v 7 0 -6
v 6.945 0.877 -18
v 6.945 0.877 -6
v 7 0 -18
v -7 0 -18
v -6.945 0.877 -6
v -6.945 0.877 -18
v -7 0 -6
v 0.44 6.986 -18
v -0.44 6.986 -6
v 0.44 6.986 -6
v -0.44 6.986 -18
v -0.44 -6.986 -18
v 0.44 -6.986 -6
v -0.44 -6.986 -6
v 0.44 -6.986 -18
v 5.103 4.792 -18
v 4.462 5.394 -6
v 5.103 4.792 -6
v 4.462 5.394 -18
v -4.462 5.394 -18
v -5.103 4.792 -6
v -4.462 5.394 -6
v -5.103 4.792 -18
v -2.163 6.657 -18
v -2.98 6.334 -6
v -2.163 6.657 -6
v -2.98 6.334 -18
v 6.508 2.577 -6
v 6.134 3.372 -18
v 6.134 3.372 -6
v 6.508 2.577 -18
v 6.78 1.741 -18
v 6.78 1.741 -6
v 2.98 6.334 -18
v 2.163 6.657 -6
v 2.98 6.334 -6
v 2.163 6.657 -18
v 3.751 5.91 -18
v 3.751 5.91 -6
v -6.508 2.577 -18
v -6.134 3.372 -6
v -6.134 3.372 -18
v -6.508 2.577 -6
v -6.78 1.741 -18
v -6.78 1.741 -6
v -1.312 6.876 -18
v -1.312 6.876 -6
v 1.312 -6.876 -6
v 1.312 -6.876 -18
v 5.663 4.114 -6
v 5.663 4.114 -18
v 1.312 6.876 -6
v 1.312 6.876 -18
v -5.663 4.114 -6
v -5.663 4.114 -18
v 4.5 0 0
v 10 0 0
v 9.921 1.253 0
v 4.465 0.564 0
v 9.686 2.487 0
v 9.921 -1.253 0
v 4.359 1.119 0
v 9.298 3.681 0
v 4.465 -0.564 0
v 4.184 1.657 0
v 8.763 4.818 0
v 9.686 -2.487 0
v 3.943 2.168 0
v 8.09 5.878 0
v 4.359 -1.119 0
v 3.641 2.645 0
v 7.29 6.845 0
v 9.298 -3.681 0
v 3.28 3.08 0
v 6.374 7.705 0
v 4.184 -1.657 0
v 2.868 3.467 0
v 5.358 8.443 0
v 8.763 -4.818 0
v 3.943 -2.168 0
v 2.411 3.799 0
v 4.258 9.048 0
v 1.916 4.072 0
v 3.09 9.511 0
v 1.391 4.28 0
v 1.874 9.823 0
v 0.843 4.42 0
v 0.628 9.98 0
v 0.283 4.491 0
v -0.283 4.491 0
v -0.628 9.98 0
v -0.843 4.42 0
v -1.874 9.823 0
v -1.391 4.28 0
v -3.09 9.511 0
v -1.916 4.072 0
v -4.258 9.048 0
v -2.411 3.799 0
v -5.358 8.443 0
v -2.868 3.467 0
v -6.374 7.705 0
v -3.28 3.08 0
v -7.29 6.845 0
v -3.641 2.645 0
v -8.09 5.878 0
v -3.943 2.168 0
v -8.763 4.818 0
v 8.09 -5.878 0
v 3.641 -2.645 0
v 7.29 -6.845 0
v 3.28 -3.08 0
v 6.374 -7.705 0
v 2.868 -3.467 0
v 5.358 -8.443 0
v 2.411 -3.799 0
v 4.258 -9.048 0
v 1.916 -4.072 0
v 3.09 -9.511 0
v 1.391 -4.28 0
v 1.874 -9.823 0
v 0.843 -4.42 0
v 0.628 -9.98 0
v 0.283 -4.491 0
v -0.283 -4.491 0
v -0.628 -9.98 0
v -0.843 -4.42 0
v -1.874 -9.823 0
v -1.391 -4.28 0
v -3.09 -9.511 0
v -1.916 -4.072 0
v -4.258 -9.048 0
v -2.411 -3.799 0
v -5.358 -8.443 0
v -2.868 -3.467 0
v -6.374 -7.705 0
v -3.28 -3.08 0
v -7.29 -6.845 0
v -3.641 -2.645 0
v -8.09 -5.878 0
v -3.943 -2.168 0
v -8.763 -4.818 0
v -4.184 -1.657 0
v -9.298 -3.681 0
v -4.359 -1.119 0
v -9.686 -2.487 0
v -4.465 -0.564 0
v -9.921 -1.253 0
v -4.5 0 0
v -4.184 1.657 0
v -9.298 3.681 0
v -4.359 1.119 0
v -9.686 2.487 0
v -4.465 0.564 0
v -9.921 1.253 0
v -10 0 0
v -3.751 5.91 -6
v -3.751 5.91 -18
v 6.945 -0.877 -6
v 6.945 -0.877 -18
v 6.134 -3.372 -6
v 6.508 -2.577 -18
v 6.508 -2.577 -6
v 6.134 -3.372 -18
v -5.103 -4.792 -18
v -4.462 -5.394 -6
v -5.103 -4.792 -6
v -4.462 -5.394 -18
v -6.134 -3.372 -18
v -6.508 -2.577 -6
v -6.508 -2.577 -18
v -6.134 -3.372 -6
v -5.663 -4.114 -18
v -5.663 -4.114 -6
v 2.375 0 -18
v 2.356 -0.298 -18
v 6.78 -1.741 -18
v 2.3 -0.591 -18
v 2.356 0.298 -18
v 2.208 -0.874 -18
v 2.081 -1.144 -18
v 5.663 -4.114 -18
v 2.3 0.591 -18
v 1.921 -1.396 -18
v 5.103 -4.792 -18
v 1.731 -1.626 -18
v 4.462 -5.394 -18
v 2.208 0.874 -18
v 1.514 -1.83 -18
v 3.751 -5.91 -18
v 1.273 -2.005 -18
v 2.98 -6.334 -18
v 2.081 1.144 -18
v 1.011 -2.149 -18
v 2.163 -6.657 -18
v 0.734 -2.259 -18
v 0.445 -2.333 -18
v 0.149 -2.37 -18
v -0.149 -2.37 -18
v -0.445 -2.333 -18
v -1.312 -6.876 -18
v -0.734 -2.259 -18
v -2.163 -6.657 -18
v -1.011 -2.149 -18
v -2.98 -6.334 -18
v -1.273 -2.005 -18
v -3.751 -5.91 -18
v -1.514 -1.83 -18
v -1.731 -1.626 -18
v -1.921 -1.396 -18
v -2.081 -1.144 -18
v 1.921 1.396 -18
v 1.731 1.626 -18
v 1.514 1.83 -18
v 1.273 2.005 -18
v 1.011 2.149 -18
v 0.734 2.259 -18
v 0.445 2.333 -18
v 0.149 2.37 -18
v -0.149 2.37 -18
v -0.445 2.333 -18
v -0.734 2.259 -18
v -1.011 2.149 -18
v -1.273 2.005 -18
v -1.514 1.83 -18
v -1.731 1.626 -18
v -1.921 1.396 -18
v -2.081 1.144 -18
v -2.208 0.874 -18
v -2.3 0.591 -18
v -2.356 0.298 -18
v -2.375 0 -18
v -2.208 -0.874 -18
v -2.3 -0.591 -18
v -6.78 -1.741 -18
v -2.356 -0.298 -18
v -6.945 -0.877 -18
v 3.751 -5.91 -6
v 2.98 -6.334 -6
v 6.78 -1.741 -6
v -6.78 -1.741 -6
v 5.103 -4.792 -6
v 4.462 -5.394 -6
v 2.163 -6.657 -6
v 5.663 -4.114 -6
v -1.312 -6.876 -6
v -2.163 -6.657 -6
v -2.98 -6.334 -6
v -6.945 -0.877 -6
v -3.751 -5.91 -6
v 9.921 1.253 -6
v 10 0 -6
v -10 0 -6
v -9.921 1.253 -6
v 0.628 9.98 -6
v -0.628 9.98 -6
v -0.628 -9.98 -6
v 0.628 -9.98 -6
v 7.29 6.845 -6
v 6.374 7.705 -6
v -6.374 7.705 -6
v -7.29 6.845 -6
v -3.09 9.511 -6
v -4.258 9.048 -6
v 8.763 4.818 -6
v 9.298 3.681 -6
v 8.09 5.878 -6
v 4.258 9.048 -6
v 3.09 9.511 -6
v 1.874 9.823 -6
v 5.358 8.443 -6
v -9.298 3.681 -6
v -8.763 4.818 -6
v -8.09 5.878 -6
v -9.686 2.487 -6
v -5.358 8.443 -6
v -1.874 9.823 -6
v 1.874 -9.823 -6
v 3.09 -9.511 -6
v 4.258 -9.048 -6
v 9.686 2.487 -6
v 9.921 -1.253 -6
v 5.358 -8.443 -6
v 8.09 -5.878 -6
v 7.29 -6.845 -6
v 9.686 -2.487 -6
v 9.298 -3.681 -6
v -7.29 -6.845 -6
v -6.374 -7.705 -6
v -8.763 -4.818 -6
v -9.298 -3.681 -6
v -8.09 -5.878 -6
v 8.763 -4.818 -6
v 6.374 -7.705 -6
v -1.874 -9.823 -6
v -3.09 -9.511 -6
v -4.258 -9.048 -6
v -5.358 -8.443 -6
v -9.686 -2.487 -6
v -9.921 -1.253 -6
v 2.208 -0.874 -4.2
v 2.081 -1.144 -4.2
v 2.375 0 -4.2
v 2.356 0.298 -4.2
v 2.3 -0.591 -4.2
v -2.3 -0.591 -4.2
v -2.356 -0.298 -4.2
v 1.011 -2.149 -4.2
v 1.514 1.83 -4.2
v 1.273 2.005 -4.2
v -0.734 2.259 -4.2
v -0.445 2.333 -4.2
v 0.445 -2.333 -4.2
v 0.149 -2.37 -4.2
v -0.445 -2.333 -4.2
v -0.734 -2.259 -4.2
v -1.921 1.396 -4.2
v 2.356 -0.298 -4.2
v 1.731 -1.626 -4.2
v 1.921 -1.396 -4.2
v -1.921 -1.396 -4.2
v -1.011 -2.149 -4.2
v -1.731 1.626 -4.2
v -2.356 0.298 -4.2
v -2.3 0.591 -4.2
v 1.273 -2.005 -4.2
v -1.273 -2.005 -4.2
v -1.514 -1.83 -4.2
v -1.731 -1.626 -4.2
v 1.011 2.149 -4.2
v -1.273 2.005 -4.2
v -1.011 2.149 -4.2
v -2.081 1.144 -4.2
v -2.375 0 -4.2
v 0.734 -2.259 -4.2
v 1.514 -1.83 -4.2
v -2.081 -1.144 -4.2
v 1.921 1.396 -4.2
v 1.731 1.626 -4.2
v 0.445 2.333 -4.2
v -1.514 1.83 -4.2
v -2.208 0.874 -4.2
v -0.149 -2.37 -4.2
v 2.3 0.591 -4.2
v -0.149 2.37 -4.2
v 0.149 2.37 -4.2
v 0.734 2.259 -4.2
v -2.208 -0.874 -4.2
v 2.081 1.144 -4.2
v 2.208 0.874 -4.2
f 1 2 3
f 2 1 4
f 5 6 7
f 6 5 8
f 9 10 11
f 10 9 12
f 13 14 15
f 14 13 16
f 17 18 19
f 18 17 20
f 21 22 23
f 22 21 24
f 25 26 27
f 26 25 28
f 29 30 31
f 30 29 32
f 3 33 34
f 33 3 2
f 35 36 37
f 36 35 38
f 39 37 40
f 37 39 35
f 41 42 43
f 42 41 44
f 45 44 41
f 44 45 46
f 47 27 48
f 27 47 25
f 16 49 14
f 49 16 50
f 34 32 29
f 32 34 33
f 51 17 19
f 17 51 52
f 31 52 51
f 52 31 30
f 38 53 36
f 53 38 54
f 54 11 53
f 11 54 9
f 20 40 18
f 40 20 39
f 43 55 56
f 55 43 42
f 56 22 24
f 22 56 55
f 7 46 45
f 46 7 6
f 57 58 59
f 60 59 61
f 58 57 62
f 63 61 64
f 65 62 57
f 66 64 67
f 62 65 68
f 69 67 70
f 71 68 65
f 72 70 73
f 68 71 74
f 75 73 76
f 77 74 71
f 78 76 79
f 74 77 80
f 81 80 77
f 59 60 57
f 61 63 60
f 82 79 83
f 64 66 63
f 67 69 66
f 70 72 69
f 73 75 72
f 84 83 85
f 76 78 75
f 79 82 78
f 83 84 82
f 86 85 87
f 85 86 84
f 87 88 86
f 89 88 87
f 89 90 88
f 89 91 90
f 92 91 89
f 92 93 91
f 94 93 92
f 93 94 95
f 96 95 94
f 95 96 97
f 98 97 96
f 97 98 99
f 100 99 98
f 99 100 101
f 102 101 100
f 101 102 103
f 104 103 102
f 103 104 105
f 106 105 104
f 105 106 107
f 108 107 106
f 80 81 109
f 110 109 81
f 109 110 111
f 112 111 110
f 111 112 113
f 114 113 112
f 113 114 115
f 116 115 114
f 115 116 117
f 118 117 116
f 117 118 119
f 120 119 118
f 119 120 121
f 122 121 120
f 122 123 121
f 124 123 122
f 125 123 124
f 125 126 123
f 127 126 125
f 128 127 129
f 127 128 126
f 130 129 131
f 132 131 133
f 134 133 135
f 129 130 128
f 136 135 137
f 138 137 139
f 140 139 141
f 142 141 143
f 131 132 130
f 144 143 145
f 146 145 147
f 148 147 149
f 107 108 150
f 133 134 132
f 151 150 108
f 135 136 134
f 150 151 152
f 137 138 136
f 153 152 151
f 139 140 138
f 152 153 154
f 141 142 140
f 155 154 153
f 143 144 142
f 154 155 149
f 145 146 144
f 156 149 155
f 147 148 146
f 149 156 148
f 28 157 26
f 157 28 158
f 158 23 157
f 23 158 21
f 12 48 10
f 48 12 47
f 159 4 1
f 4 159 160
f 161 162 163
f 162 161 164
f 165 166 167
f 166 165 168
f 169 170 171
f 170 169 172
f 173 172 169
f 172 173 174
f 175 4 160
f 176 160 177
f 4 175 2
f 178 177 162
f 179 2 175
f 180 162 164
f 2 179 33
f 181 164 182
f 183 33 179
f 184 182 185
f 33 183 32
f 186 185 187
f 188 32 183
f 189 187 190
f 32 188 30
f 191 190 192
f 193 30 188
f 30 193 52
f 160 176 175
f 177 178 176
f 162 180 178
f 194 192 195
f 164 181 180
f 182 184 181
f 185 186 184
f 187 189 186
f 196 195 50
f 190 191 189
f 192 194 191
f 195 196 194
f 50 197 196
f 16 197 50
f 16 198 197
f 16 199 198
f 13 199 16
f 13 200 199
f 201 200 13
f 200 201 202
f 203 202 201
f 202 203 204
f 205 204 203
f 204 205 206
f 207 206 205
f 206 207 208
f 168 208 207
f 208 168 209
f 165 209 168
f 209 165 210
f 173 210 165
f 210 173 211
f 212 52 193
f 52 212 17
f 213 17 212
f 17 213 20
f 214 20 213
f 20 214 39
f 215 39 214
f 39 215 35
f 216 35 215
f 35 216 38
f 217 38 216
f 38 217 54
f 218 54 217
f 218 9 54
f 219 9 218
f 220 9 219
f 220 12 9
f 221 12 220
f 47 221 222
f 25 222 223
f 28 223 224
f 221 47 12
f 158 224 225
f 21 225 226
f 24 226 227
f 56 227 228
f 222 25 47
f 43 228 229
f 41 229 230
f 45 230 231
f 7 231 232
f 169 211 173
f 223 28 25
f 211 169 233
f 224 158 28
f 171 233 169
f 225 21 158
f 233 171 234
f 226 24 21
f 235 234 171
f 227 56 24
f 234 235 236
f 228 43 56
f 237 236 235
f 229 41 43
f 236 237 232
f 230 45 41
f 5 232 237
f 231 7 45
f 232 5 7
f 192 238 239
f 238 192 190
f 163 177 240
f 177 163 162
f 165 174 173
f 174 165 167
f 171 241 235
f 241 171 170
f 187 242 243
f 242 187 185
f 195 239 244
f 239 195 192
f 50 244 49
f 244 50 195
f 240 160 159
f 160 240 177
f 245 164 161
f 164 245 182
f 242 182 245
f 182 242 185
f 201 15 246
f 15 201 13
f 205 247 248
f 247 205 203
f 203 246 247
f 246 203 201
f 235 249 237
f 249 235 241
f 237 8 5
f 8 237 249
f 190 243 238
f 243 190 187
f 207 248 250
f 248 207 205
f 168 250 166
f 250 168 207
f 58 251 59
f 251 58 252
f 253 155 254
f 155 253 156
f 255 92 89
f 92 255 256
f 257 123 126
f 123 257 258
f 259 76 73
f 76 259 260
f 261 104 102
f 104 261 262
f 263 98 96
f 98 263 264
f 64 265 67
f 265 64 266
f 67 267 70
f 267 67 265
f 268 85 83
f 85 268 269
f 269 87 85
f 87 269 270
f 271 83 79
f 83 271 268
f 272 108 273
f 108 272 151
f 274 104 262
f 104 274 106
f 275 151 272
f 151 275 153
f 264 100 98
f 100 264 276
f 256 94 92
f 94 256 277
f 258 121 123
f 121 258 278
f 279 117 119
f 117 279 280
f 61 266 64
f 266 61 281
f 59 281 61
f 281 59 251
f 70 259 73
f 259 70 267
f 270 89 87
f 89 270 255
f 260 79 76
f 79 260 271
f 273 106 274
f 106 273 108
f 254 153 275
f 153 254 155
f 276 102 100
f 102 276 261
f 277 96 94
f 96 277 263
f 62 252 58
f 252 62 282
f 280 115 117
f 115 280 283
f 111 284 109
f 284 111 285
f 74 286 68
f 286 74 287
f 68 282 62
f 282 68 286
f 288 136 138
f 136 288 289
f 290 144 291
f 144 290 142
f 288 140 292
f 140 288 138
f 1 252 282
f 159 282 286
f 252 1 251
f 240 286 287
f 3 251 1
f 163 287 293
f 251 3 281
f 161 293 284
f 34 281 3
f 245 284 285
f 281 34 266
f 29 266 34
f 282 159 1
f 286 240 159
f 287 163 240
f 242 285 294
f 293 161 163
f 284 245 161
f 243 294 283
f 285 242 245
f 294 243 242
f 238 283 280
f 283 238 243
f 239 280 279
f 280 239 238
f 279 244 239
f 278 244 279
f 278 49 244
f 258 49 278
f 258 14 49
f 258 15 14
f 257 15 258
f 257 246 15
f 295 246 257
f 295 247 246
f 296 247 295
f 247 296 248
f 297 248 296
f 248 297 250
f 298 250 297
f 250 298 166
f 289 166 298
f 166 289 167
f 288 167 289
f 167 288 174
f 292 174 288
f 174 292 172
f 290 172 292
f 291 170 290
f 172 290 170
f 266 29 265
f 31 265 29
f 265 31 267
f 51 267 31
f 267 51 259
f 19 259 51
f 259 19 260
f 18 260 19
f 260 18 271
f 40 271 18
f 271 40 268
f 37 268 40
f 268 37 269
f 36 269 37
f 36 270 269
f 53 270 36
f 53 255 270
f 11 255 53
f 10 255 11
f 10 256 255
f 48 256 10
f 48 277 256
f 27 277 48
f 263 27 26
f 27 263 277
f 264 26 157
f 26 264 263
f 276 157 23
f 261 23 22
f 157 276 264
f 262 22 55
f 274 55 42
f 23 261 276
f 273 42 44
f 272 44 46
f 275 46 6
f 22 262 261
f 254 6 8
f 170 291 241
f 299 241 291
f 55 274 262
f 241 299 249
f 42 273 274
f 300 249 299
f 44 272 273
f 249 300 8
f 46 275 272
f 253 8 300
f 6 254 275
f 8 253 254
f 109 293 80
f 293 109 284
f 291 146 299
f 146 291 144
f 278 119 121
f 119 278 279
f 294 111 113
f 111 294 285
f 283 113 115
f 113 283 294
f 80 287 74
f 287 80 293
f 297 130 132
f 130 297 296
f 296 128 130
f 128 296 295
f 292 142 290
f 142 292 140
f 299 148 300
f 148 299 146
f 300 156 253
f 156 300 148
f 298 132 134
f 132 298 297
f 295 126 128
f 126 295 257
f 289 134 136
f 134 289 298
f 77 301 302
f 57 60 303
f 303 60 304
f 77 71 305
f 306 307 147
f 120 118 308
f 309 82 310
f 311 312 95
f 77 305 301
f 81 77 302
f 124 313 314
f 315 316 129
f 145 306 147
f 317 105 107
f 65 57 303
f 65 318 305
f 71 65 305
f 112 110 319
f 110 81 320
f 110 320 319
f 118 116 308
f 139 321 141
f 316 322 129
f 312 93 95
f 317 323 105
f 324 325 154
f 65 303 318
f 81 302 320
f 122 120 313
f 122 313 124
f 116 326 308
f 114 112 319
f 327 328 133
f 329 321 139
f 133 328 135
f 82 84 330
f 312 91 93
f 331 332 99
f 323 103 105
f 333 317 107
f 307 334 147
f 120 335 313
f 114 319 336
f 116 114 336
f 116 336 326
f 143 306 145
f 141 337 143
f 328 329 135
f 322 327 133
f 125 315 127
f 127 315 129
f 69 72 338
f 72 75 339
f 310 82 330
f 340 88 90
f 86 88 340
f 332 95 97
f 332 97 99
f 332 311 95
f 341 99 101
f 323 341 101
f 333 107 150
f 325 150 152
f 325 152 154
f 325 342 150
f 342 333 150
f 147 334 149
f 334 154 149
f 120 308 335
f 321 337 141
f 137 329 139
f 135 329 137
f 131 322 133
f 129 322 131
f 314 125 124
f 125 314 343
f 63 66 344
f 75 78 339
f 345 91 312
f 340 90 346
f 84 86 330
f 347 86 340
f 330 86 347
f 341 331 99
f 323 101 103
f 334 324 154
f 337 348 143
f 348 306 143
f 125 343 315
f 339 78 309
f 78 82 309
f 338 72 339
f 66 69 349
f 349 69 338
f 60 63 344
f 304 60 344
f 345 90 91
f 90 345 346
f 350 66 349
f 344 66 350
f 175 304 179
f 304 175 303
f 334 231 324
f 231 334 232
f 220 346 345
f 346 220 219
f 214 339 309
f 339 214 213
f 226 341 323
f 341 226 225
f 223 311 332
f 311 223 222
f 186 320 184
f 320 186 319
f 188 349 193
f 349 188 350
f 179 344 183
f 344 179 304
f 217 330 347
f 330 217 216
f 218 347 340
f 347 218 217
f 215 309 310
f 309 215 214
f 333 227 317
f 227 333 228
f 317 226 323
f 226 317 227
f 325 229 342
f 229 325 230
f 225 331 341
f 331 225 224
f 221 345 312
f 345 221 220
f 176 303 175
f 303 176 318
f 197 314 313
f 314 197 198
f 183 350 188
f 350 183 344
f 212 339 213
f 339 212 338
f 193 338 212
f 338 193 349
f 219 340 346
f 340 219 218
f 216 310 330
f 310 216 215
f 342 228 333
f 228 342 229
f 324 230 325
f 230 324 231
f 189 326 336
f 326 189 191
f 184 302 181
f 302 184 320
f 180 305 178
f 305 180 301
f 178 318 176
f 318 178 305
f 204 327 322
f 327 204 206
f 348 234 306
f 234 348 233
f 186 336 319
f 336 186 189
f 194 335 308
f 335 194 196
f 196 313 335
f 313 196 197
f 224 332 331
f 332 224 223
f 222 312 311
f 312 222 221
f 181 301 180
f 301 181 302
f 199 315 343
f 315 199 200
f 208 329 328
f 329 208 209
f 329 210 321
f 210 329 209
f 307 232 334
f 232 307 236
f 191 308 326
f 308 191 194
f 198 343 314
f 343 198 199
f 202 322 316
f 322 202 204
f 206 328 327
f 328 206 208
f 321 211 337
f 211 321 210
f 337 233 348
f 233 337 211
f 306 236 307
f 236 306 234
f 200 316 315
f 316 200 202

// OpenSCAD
$fn = 50;


difference() {
	union() {
		translate(v = [0, 0, -18.0000000000]) {
			cylinder(h = 18, r = 7.0000000000);
		}
		translate(v = [0, 0, -6.0000000000]) {
			cylinder(h = 6, r = 10.0000000000);
		}
	}
	union() {
		translate(v = [0, 0, 0]) {
			rotate(a = [0, 0, 0]) {
				difference() {
					union() {
						#translate(v = [0, 0, -18.0000000000]) {
							cylinder(h = 18, r = 2.2500000000);
						}
						#translate(v = [0, 0, -4.2000000000]) {
							cylinder(h = 4.2000000000, r = 7.0000000000, r1 = 2.3750000000, r2 = 4.5000000000);
						}
						#translate(v = [0, 0, -18.0000000000]) {
							cylinder(h = 18, r = 2.3750000000);
						}
						#translate(v = [0, 0, -18.0000000000]) {
							cylinder(h = 18, r = 2.2500000000);
						}
					}
					union();
				}
			}
		}
	}
}
